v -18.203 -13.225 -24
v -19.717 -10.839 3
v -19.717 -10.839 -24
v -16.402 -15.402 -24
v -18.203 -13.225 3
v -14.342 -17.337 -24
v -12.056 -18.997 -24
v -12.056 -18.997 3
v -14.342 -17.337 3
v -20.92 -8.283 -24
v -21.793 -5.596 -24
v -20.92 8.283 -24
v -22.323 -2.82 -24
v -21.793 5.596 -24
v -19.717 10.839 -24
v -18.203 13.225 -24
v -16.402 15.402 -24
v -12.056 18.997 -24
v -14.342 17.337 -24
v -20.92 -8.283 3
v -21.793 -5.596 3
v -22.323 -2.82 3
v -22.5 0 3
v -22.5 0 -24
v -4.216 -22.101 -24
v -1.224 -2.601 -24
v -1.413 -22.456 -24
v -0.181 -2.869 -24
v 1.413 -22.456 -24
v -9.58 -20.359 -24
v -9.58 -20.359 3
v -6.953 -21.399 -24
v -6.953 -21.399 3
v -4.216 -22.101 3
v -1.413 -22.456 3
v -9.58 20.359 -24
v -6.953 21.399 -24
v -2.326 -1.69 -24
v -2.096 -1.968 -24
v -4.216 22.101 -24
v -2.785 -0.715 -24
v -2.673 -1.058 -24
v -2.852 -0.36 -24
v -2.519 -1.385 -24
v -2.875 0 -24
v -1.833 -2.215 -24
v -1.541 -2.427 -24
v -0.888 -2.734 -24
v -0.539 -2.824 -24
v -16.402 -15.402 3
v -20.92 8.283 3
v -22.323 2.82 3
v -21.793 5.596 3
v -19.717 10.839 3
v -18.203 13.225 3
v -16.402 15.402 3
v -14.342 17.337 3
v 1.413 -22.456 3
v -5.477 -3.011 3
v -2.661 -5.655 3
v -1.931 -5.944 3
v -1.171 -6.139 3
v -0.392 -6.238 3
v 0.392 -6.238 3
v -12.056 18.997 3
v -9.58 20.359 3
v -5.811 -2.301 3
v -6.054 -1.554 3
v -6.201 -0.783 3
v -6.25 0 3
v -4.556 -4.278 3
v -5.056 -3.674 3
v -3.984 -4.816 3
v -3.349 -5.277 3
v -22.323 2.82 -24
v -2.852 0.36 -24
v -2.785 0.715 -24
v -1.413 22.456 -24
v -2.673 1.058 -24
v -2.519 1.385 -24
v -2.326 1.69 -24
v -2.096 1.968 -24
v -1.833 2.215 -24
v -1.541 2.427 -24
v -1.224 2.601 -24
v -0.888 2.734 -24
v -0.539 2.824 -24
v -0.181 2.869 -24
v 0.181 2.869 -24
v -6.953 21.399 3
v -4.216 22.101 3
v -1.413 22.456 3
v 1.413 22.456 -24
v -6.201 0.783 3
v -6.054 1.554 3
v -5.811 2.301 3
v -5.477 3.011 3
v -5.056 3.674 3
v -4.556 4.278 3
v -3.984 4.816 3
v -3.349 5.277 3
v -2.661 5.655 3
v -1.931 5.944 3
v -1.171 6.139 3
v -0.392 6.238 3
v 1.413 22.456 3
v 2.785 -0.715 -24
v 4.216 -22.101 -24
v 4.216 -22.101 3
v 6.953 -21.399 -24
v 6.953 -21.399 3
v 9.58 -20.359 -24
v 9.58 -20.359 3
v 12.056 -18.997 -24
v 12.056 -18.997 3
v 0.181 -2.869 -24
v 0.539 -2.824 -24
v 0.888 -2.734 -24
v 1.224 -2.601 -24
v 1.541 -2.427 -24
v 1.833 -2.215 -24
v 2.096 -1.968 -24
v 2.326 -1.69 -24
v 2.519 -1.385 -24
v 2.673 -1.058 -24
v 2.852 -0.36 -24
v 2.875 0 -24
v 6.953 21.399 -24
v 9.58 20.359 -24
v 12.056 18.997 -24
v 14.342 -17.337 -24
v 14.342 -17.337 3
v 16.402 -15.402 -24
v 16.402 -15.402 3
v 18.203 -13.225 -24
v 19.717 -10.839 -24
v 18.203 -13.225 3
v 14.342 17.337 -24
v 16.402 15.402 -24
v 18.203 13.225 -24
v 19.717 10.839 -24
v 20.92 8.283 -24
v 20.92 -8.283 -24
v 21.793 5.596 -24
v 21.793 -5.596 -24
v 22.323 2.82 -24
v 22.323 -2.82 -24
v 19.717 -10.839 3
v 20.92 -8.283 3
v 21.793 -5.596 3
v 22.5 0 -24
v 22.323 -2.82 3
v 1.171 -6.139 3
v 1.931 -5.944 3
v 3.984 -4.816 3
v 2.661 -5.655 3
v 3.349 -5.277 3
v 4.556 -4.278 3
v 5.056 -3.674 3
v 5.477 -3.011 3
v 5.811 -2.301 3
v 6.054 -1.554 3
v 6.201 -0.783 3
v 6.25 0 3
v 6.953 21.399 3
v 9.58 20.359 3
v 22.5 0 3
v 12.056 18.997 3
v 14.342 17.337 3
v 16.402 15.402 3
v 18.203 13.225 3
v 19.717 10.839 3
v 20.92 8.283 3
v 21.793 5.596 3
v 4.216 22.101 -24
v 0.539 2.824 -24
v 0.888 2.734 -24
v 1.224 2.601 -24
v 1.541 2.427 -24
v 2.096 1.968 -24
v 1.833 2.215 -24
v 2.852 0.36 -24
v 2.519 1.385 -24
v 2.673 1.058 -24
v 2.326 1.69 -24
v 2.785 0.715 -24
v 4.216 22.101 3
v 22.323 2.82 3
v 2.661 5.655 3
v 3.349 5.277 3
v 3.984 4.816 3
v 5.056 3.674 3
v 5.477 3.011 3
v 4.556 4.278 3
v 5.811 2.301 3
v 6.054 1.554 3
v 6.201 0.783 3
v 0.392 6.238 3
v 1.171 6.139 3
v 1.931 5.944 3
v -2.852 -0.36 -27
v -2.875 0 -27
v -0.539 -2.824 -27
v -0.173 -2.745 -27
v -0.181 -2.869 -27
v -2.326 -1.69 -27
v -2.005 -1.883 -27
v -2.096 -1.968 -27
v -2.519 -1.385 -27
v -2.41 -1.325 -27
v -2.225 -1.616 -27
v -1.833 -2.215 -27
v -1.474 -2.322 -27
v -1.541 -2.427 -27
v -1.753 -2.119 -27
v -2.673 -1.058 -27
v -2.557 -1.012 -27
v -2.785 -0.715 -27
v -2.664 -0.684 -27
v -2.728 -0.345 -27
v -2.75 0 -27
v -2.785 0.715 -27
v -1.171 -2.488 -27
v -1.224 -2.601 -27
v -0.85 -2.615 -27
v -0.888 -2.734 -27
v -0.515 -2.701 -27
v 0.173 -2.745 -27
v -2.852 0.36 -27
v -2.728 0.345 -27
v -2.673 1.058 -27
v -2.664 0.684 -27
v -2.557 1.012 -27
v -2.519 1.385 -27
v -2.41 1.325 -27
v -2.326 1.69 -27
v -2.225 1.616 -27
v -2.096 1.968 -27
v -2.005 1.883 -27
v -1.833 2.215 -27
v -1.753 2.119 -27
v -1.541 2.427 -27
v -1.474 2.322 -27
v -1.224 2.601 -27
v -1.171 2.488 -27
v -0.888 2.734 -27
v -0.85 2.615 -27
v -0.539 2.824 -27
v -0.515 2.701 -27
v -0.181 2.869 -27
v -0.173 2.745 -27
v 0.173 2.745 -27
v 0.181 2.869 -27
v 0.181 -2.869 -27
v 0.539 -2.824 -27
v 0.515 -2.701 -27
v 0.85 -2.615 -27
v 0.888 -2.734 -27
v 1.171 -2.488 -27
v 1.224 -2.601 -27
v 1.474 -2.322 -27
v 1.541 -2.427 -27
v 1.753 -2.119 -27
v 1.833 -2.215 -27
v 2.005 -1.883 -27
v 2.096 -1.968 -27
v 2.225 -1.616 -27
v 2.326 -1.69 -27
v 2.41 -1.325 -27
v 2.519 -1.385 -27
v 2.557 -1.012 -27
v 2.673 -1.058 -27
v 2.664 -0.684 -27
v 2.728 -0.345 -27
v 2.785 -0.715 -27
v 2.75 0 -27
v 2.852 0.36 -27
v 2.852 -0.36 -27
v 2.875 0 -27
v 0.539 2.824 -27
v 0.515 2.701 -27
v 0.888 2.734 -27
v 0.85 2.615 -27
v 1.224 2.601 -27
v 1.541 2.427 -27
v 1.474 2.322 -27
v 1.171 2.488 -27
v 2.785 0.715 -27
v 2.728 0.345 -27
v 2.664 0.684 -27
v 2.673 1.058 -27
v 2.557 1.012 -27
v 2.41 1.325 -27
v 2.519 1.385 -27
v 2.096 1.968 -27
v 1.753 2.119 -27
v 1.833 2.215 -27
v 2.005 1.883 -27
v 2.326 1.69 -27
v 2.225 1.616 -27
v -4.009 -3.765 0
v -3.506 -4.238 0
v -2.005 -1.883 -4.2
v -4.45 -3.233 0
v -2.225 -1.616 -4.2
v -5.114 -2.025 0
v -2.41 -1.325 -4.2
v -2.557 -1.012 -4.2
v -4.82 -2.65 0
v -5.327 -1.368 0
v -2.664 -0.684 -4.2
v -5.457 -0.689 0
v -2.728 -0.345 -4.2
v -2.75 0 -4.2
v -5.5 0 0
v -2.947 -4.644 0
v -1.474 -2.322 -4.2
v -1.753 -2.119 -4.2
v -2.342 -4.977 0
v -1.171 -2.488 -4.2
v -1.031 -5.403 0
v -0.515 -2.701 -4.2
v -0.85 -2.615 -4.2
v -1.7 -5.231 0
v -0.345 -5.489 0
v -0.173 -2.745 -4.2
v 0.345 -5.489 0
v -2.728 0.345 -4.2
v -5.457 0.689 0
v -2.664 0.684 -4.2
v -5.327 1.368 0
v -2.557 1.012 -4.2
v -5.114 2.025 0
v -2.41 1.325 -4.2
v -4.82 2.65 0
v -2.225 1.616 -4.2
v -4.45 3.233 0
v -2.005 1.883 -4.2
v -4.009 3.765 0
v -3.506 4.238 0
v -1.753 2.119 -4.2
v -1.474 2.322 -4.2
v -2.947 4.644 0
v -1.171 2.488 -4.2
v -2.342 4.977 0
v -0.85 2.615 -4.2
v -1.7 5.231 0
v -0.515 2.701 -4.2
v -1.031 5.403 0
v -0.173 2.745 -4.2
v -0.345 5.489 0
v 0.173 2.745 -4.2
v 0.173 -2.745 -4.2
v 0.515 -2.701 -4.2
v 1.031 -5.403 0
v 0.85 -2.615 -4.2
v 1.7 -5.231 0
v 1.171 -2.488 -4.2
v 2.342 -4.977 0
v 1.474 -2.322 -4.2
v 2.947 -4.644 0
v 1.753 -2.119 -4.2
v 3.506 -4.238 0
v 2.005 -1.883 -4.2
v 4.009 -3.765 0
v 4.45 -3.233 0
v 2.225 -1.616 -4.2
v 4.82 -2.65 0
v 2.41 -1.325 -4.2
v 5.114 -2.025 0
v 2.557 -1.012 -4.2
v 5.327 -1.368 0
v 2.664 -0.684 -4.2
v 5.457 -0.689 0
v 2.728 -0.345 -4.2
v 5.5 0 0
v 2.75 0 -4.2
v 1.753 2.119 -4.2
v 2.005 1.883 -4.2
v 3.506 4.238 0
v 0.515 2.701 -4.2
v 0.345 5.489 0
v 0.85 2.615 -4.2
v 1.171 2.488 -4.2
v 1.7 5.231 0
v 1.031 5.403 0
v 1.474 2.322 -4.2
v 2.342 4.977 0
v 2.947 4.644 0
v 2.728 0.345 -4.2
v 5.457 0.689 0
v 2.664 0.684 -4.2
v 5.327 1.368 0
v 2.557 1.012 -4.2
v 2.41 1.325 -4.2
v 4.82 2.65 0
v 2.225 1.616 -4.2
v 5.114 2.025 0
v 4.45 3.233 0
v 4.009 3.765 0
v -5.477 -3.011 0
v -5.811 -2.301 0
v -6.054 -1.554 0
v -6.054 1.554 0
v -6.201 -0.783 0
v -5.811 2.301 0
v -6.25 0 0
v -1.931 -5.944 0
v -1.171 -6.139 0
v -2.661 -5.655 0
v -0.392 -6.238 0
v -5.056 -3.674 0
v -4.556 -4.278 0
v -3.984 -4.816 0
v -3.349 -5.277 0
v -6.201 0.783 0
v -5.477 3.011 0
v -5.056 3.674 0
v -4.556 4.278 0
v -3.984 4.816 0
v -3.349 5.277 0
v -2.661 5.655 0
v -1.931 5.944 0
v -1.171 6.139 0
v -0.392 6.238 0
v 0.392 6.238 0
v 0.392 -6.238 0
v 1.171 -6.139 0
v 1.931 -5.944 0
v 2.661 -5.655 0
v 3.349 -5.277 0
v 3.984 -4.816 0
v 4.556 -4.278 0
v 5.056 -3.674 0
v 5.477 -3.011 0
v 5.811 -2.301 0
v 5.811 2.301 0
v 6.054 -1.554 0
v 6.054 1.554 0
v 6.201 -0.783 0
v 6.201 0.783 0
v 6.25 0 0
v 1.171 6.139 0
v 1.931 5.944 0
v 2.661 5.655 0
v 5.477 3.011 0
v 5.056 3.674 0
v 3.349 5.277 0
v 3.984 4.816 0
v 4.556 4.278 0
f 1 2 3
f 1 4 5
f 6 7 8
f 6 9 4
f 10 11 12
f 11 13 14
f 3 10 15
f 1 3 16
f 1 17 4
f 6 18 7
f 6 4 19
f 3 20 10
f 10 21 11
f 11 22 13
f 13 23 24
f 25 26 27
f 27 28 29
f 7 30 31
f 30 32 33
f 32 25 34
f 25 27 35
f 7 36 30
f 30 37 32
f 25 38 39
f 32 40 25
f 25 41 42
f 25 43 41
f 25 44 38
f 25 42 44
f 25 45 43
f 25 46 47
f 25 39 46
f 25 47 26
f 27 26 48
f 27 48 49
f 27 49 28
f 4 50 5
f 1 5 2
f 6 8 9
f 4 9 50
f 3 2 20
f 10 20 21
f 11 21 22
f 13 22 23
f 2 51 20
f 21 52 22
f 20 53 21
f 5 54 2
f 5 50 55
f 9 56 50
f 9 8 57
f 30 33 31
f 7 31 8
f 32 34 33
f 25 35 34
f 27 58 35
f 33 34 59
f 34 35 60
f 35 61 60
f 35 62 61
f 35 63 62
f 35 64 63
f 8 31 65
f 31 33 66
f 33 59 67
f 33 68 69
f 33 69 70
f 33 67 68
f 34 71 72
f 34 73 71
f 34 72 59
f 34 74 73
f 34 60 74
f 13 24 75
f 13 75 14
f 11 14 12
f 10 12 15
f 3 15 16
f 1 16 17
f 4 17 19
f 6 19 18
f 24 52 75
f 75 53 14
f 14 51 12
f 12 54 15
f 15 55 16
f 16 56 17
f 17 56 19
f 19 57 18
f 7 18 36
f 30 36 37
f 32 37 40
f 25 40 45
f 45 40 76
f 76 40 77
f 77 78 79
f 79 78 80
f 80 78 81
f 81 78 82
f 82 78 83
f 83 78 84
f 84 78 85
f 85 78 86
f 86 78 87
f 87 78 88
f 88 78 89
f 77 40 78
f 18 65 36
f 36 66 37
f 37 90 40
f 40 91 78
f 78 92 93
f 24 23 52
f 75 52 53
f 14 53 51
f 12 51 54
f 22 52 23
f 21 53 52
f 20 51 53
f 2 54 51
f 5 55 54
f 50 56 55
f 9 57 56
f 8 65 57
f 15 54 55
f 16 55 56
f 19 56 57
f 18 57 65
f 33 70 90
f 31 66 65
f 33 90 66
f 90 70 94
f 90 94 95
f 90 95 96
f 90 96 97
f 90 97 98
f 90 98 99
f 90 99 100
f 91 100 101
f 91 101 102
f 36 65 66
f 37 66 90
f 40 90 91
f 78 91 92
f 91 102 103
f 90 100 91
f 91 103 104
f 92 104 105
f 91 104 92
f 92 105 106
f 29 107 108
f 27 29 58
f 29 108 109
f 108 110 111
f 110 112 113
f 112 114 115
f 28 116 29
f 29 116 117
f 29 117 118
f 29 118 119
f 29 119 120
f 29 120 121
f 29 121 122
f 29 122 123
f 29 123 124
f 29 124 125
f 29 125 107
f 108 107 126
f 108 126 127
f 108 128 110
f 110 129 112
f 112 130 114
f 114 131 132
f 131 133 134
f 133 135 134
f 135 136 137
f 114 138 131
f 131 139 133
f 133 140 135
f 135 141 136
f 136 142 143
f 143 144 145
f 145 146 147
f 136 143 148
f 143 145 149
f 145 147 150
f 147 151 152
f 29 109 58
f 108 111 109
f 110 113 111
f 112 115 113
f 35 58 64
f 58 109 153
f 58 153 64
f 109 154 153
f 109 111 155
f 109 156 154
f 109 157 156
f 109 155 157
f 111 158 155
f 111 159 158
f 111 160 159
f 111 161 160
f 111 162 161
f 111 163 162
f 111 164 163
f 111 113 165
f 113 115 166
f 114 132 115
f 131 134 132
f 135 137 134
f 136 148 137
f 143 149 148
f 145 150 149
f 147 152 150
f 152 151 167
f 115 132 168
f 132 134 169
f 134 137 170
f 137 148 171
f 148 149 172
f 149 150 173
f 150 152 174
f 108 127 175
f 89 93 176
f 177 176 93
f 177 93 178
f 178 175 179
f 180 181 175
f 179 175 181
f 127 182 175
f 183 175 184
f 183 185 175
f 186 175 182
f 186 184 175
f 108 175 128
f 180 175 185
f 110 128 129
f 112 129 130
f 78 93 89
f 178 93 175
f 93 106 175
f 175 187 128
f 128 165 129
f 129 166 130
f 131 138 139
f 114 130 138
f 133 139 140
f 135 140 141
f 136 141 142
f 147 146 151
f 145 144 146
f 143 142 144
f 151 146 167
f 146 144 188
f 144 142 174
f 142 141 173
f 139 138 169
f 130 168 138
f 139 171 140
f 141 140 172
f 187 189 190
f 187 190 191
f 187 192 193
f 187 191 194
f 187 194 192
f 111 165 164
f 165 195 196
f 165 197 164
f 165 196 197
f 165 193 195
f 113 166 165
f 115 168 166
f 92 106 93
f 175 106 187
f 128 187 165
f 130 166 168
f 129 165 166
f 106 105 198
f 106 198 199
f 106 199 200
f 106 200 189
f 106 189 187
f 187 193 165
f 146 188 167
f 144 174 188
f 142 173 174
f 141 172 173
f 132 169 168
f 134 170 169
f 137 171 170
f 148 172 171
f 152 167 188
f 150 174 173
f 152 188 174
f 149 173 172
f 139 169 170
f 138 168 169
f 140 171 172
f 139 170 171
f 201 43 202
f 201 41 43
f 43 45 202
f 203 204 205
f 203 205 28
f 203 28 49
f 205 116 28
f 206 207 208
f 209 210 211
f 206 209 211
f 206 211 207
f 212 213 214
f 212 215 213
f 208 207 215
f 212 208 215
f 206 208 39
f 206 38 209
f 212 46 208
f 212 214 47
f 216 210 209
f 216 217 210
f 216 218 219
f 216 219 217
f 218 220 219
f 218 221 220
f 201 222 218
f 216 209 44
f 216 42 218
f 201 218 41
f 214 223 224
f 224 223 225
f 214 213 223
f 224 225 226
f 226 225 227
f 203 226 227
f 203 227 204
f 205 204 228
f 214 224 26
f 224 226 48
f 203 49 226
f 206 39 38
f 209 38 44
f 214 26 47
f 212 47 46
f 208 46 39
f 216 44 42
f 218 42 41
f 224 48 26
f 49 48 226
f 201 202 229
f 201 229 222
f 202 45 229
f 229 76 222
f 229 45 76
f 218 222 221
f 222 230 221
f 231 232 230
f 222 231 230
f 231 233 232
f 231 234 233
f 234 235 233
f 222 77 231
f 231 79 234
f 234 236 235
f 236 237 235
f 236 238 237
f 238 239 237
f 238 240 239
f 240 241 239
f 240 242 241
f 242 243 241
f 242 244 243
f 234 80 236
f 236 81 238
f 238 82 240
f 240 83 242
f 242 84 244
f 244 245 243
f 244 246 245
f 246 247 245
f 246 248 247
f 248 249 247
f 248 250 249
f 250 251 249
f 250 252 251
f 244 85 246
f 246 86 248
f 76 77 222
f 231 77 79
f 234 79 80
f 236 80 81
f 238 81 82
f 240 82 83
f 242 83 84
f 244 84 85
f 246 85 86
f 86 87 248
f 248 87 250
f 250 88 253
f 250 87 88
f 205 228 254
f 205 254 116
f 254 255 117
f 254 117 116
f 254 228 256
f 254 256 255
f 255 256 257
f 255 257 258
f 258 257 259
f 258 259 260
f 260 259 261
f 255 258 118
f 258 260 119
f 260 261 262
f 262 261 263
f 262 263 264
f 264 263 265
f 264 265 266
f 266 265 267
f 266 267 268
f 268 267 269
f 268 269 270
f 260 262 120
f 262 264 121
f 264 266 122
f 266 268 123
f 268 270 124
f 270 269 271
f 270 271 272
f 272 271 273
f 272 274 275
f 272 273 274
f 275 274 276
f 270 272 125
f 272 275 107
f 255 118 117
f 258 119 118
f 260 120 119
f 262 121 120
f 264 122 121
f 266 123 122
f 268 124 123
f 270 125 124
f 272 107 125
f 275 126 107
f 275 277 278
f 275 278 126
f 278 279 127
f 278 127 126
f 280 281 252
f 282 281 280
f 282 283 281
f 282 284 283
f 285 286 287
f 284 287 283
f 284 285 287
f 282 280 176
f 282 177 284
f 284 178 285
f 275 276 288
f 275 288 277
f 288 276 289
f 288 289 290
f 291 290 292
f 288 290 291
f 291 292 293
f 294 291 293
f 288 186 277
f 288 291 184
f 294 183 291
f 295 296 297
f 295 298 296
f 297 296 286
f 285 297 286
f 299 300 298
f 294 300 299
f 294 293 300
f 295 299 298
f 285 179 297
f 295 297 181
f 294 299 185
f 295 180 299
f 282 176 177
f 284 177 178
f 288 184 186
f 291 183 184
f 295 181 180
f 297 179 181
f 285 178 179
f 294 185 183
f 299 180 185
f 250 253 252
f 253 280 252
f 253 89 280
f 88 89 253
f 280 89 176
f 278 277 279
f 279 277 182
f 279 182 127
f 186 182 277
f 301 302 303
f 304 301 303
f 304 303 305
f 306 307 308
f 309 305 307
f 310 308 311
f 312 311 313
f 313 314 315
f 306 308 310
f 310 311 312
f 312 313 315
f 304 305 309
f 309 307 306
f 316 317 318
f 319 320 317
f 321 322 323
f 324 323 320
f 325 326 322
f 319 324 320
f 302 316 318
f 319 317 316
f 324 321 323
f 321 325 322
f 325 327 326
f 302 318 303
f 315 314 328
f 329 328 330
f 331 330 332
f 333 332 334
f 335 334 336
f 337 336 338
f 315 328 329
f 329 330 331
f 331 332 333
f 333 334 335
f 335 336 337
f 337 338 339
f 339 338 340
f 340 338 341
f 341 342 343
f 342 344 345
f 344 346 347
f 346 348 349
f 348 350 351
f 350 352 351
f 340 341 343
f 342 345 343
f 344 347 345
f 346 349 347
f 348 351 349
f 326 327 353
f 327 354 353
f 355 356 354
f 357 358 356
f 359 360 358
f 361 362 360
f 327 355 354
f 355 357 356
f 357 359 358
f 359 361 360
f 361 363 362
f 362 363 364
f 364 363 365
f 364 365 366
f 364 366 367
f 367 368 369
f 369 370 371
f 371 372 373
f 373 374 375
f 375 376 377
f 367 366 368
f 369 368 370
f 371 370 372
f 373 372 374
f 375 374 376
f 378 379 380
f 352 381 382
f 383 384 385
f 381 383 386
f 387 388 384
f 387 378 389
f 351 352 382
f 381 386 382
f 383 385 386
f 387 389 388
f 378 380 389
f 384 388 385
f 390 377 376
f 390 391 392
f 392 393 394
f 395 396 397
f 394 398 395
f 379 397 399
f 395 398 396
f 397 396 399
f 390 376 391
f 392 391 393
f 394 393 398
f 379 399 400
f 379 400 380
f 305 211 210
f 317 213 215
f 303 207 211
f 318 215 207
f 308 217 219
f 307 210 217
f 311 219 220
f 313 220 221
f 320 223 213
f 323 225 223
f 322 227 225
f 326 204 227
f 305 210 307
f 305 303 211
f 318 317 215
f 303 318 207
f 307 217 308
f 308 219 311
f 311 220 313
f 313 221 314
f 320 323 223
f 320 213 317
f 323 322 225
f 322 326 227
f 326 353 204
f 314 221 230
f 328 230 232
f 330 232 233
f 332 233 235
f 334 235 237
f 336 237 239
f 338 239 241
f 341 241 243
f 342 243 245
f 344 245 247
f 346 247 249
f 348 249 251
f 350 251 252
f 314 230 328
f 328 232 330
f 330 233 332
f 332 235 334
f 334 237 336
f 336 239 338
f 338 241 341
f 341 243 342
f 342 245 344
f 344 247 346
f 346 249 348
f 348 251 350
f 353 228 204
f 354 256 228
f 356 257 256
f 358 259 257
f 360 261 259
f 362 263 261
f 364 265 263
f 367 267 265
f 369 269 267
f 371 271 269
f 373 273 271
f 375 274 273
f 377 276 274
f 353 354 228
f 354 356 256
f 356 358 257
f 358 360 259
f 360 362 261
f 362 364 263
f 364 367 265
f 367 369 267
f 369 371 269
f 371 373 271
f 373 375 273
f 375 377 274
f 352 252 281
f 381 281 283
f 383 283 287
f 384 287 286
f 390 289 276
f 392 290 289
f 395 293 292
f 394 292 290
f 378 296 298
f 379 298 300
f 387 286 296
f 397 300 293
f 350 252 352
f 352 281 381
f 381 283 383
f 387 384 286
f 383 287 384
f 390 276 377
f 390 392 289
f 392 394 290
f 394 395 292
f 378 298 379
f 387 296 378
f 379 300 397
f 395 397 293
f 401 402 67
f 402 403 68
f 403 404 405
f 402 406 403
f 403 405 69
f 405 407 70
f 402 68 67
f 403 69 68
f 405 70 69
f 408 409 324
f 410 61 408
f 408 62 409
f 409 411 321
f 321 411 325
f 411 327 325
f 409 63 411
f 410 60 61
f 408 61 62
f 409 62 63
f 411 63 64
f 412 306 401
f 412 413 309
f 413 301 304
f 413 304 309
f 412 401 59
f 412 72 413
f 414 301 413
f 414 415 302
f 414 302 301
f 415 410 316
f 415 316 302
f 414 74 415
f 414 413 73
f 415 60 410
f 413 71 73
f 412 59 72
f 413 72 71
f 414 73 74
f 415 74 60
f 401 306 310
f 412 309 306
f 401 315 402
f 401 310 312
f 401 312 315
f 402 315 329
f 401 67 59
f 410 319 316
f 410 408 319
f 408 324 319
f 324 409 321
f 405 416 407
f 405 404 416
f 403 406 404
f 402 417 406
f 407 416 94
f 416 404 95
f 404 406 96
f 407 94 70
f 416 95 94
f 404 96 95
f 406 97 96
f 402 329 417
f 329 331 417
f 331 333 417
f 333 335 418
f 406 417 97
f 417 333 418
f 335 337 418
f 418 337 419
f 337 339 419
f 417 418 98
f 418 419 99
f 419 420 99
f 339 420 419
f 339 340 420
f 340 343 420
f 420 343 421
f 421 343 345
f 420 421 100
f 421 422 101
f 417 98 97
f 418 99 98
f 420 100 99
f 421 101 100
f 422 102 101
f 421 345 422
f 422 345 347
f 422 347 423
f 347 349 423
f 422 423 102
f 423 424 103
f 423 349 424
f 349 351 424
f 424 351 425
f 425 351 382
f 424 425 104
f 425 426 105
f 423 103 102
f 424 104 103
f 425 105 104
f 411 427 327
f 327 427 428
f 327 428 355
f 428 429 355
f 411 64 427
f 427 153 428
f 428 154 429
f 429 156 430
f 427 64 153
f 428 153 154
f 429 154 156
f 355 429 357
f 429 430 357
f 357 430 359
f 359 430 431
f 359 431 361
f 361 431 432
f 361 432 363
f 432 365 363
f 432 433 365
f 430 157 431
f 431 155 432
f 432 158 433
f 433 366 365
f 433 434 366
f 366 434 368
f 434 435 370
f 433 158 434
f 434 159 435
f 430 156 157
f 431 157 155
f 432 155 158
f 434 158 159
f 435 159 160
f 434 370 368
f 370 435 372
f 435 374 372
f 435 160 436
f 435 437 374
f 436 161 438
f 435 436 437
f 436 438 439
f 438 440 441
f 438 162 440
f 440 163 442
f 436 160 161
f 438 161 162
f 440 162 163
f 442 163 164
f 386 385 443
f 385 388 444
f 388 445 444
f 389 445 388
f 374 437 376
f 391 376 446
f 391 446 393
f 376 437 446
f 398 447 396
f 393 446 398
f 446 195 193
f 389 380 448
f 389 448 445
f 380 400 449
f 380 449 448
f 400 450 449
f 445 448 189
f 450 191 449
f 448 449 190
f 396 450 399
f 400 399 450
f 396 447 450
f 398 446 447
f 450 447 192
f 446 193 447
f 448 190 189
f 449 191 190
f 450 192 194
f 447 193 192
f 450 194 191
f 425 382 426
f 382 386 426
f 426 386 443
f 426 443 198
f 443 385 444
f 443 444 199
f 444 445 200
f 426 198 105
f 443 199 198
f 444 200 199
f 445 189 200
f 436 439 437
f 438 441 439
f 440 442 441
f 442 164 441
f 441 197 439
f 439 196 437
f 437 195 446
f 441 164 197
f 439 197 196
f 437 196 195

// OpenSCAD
$fn = 50;


difference() {
	union() {
		translate(v = [0, 0, -24.0000000000]) {
			cylinder(h = 27, r = 22.5000000000);
		}
		#translate(v = [0, 0, -27.0000000000]) {
			cylinder(h = 27, r = 2.8750000000);
		}
	}
	union() {
		translate(v = [0, 0, 0]) {
			rotate(a = [0, 0, 0]) {
				difference() {
					union() {
						translate(v = [0, 0, -27.0000000000]) {
							cylinder(h = 27, r = 2.2500000000);
						}
						translate(v = [0, 0, -4.2000000000]) {
							cylinder(h = 4.2000000000, r1 = 2.7500000000, r2 = 5.5000000000);
						}
						translate(v = [0, 0, -27.0000000000]) {
							cylinder(h = 27, r = 2.7500000000);
						}
						translate(v = [0, 0, -27.0000000000]) {
							cylinder(h = 27, r = 2.2500000000);
						}
					}
					union();
				}
			}
		}
		#cylinder(h = 3, r = 6.2500000000);
	}
}
